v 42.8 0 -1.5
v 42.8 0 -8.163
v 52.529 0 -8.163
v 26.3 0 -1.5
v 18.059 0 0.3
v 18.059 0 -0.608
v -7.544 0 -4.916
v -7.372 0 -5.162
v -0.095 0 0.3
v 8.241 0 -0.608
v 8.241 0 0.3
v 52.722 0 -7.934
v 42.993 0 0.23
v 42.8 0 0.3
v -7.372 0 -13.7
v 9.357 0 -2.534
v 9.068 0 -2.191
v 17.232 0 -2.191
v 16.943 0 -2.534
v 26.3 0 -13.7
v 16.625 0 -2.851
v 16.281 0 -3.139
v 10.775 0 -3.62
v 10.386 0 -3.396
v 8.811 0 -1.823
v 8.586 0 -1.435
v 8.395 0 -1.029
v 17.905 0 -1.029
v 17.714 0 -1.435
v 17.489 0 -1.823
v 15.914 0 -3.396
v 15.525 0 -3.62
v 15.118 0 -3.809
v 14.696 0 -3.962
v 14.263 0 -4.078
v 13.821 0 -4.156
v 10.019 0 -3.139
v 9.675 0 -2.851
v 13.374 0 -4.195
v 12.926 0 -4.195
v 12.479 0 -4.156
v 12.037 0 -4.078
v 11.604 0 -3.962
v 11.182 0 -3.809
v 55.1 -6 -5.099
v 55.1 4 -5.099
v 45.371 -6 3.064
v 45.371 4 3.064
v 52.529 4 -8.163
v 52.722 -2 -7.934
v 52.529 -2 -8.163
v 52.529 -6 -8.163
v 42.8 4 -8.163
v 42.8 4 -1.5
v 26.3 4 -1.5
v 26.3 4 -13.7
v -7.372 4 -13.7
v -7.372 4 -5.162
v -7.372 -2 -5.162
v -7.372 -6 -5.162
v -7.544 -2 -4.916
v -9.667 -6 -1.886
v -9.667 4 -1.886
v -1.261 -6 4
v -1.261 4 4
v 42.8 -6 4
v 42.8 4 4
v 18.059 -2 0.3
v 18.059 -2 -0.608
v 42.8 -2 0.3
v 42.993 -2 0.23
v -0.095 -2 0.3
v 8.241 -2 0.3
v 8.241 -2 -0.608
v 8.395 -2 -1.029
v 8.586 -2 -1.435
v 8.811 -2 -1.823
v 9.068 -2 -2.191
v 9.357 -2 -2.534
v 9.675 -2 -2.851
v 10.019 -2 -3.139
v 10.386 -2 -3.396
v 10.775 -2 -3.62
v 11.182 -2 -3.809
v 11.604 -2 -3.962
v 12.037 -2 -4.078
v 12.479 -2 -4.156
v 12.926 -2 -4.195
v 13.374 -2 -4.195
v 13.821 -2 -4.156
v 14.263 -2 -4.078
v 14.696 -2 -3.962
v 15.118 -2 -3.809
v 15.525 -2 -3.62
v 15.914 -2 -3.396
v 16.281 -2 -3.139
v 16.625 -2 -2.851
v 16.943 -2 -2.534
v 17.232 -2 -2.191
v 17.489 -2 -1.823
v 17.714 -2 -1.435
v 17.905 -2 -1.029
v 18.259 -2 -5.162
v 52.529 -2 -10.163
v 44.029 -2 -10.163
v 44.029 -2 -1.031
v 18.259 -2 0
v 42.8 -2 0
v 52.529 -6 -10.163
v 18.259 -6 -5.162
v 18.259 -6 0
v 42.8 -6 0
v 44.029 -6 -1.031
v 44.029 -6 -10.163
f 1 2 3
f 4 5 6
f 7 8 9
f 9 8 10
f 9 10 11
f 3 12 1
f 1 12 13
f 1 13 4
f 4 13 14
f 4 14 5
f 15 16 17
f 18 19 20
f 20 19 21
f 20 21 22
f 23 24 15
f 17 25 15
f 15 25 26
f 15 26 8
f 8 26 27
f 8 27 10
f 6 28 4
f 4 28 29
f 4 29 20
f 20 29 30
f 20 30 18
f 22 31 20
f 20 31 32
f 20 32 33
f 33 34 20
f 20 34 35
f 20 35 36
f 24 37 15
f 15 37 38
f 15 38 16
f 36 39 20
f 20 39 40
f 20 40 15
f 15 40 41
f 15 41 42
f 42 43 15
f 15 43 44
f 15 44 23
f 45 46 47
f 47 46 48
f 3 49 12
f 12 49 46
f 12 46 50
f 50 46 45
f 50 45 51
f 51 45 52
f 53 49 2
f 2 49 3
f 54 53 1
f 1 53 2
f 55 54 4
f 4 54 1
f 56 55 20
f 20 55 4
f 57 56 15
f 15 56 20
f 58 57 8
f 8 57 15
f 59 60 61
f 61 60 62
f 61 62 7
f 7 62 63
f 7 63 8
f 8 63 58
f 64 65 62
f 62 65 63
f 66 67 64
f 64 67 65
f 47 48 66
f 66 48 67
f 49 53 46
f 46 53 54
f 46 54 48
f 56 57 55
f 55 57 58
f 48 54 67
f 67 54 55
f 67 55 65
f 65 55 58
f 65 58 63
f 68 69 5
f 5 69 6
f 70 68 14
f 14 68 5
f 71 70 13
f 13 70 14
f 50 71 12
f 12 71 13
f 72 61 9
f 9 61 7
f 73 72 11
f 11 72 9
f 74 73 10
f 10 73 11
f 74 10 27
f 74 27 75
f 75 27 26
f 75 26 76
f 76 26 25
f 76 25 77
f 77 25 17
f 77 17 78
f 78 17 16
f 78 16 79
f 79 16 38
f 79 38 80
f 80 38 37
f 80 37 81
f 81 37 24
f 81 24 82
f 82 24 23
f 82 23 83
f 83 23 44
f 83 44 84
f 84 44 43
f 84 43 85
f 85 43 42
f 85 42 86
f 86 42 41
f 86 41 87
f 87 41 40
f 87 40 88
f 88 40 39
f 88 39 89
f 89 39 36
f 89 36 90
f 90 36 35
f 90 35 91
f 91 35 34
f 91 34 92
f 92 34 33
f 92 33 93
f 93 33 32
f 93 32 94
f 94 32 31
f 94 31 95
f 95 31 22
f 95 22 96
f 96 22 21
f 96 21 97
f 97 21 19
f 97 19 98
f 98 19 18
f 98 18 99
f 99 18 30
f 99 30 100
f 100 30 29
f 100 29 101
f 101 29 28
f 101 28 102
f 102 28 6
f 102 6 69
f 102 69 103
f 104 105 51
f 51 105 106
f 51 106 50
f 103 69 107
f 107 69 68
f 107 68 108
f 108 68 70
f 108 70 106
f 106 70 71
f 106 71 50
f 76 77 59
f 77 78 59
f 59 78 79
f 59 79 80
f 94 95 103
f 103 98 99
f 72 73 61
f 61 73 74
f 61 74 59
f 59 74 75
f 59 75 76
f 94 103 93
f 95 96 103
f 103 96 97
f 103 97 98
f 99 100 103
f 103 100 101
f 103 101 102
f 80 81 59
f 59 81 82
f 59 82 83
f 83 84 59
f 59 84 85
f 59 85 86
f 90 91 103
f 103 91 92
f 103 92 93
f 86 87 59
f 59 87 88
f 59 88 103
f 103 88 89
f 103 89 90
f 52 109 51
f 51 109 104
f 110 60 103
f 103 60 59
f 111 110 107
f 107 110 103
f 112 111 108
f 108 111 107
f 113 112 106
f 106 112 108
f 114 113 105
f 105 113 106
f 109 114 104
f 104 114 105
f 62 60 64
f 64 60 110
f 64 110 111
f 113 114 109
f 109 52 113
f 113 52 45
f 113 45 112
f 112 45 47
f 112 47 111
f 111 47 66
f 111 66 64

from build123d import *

# Parameters (mm, degrees)
BOSS_EXTRUDE1_DEPTH = 4
BOSS_EXTRUDE3_DEPTH = 2
BOSS_EXTRUDE4_DEPTH = 4


with BuildPart() as part:
    # Sketch2 → Boss-Extrude1 (new body)
    with BuildSketch(Plane(origin=(0, 0, 0), x_dir=(1, 0, 0), z_dir=(0, 1, 0))):
        Polygon((-7.372368399, 13.7), (-7.372368399, 5.162187927), (-9.666674144, 1.88557975), (-1.261195156, -4), (42.8, -4), (45.371150439, -3.064177772), (55.099914866, 5.099224871), (52.528764428, 8.163402643), (42.8, 8.163402643), (42.8, 1.5), (26.3, 1.5), (26.3, 13.7), align=None)
    extrude(amount=BOSS_EXTRUDE1_DEPTH)

    # Sketch2<4> → Boss-Extrude3 (add)
    with BuildSketch(Plane(origin=(0, 0, 0), x_dir=(1, 0, 0), z_dir=(0, 1, 0))):
        with BuildLine():
            Line((-0.094589637, -0.3), (-7.54444133, 4.916442314))
            Line((-7.54444133, 4.916442314), (-9.666674144, 1.88557975))
            Line((-9.666674144, 1.88557975), (-1.261195156, -4))
            Line((-1.261195156, -4), (42.8, -4))
            Line((42.8, -4), (45.371150439, -3.064177772))
            Line((45.371150439, -3.064177772), (55.099914866, 5.099224871))
            Line((55.099914866, 5.099224871), (52.721600711, 7.93358931))
            Line((52.721600711, 7.93358931), (42.992836283, -0.229813333))
            Line((42.992836283, -0.229813333), (42.8, -0.3))
            Line((42.8, -0.3), (18.05881591, -0.3))
            Line((18.05881591, -0.3), (18.05881591, 0.607570661))
            ThreePointArc((18.05881591, 0.607570661), (13.15, 4.2), (8.24118409, 0.607570661))
            Line((8.24118409, 0.607570661), (8.24118409, -0.3))
            Line((8.24118409, -0.3), (-0.094589637, -0.3))
        make_face()
    extrude(amount=-BOSS_EXTRUDE3_DEPTH)

    # Sketch3 → Boss-Extrude4 (add)
    with BuildSketch(Plane(origin=(0, -2, 0), x_dir=(-1, 0, 0), z_dir=(0, -1, 0))):
        Polygon((-42.8, 0), (-44.028764428, 1.031055778), (-44.028764428, 10.163402643), (-52.528764428, 10.163402643), (-52.528764428, 8.163402643), (-55.099914866, 5.099224871), (-45.371150439, -3.064177772), (-42.8, -4), (1.261195156, -4), (9.666674144, 1.88557975), (7.372368399, 5.162187927), (-18.25881591, 5.162187927), (-18.25881591, 0), align=None)
    extrude(amount=BOSS_EXTRUDE4_DEPTH)


solid = part.part
